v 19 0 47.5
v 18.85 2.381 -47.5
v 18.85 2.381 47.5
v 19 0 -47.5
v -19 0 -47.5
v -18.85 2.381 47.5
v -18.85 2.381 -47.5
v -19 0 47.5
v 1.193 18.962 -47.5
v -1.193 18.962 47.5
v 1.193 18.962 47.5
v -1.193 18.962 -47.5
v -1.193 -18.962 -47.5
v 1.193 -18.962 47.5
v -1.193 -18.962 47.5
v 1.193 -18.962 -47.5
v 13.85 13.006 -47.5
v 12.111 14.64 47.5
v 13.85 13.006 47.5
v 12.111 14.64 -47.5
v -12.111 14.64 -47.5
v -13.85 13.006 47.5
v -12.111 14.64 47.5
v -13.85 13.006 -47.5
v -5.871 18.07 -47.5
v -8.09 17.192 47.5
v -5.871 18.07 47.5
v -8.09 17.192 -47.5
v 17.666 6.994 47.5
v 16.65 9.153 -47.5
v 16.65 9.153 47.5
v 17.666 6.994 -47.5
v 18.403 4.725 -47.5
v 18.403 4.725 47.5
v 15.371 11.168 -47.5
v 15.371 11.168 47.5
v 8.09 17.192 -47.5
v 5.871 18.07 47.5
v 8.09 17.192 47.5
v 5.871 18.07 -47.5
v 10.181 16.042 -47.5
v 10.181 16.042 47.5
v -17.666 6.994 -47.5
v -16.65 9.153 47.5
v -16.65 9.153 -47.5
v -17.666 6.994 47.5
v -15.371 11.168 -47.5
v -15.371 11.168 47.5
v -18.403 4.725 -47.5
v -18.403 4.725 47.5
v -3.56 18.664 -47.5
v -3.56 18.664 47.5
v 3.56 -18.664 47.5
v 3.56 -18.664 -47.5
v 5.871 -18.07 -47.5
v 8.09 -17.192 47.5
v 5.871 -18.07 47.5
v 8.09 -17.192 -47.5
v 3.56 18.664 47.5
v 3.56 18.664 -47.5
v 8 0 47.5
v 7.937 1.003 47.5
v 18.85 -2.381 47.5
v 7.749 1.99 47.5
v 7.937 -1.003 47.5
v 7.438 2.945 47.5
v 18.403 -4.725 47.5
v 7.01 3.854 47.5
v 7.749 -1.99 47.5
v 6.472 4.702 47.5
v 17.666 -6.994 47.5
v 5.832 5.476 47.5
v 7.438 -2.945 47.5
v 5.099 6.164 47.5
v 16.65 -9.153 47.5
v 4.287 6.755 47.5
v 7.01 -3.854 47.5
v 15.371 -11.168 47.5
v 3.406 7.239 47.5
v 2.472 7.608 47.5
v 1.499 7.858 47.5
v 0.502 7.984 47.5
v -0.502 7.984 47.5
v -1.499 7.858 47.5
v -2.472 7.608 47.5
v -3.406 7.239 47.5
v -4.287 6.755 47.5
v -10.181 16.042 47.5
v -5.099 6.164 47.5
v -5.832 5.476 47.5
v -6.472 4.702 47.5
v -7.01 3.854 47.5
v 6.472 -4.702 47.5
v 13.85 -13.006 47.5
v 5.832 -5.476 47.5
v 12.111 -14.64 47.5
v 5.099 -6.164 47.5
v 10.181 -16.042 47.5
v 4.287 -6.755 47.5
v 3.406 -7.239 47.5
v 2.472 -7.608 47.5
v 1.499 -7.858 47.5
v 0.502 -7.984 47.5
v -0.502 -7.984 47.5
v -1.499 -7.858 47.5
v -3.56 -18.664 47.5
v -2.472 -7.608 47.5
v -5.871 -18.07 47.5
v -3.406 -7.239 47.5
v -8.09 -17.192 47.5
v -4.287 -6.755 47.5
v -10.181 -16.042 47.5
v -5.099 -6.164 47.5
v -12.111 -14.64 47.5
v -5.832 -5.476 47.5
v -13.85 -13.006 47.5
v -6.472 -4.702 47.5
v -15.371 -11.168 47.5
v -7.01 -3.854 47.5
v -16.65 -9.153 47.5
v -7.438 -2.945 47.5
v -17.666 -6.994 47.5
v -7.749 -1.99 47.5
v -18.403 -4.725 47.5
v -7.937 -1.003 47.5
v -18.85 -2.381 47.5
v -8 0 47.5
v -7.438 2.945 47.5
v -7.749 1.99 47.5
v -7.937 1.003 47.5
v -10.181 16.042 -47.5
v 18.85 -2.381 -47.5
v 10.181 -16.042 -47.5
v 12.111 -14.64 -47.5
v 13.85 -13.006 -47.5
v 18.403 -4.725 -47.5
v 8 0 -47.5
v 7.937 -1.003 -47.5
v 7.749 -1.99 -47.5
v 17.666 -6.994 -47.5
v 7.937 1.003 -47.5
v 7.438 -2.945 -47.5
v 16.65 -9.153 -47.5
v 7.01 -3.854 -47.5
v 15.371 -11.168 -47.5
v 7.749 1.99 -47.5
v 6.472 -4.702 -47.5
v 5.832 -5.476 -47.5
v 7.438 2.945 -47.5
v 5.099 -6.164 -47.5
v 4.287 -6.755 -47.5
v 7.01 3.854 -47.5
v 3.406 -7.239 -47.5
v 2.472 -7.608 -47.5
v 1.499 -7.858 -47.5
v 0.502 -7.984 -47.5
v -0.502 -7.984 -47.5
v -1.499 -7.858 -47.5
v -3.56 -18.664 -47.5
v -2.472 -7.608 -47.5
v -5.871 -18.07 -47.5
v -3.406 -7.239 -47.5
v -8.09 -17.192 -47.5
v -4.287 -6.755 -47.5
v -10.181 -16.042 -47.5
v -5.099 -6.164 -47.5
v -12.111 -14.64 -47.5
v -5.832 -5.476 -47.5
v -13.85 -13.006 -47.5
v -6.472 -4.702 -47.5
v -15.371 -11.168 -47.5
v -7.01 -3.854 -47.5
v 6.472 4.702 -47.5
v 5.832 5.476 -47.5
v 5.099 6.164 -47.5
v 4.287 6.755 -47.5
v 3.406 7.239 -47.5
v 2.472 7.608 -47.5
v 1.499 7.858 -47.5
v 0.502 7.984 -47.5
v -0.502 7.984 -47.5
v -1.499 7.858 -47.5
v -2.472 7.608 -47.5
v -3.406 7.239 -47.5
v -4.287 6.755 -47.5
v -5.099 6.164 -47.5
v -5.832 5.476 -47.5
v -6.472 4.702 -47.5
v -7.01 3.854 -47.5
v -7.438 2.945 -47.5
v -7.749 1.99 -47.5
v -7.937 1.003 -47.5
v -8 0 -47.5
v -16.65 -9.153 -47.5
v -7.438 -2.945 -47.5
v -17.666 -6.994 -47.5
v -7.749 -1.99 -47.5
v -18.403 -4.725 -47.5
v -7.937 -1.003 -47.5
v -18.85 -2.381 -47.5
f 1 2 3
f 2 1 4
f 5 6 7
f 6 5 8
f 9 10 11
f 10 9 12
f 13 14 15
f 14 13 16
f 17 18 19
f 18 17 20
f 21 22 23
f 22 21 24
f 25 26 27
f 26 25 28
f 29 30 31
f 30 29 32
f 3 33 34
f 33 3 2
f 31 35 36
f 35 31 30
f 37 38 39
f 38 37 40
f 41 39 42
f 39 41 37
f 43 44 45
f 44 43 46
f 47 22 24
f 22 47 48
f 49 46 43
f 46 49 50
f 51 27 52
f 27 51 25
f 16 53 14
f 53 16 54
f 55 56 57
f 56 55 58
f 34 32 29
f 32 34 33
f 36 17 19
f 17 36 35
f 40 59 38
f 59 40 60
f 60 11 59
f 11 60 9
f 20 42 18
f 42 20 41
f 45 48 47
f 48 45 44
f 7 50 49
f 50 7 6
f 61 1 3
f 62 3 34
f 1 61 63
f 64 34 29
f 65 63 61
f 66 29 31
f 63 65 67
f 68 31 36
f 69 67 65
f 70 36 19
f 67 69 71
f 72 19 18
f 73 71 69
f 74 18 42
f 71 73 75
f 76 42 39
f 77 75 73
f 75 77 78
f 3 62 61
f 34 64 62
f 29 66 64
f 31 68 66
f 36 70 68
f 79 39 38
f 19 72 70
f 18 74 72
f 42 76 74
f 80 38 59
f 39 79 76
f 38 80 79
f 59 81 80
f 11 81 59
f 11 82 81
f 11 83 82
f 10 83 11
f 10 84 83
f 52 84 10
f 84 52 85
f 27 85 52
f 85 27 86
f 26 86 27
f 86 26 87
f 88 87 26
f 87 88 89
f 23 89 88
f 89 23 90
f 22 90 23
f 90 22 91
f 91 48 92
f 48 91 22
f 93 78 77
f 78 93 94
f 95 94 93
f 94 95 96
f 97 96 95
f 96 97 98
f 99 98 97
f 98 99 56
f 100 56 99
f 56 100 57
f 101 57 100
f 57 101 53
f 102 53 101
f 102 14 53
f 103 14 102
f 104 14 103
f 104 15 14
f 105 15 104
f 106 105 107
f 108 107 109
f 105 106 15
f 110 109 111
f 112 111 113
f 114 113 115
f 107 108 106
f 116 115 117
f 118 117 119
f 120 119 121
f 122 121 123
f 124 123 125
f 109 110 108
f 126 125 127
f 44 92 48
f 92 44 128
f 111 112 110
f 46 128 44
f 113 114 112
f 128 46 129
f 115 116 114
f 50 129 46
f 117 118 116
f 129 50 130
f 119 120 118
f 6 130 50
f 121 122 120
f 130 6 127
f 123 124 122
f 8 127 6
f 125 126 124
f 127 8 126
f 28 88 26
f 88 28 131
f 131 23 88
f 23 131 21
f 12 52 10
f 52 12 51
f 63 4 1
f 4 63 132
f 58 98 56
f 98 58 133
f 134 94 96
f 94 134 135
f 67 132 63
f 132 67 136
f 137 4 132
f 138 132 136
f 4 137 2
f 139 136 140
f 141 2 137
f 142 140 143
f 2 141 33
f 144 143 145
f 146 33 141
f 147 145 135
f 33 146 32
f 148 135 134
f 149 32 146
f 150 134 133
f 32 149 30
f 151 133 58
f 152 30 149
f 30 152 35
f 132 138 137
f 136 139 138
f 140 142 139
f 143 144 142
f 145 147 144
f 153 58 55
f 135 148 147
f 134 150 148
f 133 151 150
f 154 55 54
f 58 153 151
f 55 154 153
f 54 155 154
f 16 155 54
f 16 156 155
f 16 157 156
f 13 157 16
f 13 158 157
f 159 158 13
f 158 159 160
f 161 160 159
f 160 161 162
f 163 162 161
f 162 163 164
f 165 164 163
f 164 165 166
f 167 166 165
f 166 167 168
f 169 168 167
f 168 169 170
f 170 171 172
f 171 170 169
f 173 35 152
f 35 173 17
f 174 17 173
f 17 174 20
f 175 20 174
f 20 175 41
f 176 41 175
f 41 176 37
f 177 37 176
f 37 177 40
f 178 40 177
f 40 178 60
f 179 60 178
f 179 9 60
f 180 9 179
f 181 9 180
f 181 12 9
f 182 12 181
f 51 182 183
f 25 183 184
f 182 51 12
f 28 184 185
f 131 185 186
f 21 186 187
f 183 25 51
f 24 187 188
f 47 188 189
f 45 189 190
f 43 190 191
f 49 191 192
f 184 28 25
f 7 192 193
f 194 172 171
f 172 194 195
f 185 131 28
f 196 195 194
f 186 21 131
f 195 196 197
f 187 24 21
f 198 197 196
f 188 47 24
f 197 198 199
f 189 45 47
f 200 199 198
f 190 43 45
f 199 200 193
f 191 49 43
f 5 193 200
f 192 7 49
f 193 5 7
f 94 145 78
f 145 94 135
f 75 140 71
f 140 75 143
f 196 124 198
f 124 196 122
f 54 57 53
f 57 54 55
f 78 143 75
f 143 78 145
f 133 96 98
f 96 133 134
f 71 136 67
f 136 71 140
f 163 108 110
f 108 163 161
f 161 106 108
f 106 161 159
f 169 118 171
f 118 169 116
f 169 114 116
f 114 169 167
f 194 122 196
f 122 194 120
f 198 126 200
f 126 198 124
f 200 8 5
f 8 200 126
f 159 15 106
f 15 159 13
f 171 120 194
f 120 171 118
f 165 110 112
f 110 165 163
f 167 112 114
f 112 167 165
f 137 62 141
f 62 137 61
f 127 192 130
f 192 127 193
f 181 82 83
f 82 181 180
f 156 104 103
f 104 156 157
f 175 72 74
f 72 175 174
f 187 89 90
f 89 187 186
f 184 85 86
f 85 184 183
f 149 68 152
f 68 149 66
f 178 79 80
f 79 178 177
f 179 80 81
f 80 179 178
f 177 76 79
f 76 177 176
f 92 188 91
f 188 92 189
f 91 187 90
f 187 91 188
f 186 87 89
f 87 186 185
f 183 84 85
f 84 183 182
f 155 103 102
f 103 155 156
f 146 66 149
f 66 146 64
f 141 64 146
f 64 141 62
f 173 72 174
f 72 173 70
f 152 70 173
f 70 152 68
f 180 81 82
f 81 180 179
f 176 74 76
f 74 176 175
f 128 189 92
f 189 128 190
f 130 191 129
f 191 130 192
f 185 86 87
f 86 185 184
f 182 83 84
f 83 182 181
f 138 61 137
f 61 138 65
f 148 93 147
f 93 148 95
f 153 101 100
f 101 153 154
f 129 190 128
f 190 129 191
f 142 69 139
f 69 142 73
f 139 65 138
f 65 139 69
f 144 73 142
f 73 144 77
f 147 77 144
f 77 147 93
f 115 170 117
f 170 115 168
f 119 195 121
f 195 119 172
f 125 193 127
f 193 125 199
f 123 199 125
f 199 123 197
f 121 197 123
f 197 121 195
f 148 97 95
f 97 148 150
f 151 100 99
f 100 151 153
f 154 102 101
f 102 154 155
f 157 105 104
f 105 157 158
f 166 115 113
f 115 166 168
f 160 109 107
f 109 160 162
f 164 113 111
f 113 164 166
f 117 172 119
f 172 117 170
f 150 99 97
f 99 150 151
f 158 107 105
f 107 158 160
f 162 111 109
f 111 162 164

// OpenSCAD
$fn = 50;


difference() {
	union() {
		translate(v = [0, 0, -47.5000000000]) {
			cylinder(h = 95, r = 19.0000000000);
		}
	}
	union() {
		translate(v = [0, 0, -100.0000000000]) {
			cylinder(h = 200, r = 8);
		}
	}
}
